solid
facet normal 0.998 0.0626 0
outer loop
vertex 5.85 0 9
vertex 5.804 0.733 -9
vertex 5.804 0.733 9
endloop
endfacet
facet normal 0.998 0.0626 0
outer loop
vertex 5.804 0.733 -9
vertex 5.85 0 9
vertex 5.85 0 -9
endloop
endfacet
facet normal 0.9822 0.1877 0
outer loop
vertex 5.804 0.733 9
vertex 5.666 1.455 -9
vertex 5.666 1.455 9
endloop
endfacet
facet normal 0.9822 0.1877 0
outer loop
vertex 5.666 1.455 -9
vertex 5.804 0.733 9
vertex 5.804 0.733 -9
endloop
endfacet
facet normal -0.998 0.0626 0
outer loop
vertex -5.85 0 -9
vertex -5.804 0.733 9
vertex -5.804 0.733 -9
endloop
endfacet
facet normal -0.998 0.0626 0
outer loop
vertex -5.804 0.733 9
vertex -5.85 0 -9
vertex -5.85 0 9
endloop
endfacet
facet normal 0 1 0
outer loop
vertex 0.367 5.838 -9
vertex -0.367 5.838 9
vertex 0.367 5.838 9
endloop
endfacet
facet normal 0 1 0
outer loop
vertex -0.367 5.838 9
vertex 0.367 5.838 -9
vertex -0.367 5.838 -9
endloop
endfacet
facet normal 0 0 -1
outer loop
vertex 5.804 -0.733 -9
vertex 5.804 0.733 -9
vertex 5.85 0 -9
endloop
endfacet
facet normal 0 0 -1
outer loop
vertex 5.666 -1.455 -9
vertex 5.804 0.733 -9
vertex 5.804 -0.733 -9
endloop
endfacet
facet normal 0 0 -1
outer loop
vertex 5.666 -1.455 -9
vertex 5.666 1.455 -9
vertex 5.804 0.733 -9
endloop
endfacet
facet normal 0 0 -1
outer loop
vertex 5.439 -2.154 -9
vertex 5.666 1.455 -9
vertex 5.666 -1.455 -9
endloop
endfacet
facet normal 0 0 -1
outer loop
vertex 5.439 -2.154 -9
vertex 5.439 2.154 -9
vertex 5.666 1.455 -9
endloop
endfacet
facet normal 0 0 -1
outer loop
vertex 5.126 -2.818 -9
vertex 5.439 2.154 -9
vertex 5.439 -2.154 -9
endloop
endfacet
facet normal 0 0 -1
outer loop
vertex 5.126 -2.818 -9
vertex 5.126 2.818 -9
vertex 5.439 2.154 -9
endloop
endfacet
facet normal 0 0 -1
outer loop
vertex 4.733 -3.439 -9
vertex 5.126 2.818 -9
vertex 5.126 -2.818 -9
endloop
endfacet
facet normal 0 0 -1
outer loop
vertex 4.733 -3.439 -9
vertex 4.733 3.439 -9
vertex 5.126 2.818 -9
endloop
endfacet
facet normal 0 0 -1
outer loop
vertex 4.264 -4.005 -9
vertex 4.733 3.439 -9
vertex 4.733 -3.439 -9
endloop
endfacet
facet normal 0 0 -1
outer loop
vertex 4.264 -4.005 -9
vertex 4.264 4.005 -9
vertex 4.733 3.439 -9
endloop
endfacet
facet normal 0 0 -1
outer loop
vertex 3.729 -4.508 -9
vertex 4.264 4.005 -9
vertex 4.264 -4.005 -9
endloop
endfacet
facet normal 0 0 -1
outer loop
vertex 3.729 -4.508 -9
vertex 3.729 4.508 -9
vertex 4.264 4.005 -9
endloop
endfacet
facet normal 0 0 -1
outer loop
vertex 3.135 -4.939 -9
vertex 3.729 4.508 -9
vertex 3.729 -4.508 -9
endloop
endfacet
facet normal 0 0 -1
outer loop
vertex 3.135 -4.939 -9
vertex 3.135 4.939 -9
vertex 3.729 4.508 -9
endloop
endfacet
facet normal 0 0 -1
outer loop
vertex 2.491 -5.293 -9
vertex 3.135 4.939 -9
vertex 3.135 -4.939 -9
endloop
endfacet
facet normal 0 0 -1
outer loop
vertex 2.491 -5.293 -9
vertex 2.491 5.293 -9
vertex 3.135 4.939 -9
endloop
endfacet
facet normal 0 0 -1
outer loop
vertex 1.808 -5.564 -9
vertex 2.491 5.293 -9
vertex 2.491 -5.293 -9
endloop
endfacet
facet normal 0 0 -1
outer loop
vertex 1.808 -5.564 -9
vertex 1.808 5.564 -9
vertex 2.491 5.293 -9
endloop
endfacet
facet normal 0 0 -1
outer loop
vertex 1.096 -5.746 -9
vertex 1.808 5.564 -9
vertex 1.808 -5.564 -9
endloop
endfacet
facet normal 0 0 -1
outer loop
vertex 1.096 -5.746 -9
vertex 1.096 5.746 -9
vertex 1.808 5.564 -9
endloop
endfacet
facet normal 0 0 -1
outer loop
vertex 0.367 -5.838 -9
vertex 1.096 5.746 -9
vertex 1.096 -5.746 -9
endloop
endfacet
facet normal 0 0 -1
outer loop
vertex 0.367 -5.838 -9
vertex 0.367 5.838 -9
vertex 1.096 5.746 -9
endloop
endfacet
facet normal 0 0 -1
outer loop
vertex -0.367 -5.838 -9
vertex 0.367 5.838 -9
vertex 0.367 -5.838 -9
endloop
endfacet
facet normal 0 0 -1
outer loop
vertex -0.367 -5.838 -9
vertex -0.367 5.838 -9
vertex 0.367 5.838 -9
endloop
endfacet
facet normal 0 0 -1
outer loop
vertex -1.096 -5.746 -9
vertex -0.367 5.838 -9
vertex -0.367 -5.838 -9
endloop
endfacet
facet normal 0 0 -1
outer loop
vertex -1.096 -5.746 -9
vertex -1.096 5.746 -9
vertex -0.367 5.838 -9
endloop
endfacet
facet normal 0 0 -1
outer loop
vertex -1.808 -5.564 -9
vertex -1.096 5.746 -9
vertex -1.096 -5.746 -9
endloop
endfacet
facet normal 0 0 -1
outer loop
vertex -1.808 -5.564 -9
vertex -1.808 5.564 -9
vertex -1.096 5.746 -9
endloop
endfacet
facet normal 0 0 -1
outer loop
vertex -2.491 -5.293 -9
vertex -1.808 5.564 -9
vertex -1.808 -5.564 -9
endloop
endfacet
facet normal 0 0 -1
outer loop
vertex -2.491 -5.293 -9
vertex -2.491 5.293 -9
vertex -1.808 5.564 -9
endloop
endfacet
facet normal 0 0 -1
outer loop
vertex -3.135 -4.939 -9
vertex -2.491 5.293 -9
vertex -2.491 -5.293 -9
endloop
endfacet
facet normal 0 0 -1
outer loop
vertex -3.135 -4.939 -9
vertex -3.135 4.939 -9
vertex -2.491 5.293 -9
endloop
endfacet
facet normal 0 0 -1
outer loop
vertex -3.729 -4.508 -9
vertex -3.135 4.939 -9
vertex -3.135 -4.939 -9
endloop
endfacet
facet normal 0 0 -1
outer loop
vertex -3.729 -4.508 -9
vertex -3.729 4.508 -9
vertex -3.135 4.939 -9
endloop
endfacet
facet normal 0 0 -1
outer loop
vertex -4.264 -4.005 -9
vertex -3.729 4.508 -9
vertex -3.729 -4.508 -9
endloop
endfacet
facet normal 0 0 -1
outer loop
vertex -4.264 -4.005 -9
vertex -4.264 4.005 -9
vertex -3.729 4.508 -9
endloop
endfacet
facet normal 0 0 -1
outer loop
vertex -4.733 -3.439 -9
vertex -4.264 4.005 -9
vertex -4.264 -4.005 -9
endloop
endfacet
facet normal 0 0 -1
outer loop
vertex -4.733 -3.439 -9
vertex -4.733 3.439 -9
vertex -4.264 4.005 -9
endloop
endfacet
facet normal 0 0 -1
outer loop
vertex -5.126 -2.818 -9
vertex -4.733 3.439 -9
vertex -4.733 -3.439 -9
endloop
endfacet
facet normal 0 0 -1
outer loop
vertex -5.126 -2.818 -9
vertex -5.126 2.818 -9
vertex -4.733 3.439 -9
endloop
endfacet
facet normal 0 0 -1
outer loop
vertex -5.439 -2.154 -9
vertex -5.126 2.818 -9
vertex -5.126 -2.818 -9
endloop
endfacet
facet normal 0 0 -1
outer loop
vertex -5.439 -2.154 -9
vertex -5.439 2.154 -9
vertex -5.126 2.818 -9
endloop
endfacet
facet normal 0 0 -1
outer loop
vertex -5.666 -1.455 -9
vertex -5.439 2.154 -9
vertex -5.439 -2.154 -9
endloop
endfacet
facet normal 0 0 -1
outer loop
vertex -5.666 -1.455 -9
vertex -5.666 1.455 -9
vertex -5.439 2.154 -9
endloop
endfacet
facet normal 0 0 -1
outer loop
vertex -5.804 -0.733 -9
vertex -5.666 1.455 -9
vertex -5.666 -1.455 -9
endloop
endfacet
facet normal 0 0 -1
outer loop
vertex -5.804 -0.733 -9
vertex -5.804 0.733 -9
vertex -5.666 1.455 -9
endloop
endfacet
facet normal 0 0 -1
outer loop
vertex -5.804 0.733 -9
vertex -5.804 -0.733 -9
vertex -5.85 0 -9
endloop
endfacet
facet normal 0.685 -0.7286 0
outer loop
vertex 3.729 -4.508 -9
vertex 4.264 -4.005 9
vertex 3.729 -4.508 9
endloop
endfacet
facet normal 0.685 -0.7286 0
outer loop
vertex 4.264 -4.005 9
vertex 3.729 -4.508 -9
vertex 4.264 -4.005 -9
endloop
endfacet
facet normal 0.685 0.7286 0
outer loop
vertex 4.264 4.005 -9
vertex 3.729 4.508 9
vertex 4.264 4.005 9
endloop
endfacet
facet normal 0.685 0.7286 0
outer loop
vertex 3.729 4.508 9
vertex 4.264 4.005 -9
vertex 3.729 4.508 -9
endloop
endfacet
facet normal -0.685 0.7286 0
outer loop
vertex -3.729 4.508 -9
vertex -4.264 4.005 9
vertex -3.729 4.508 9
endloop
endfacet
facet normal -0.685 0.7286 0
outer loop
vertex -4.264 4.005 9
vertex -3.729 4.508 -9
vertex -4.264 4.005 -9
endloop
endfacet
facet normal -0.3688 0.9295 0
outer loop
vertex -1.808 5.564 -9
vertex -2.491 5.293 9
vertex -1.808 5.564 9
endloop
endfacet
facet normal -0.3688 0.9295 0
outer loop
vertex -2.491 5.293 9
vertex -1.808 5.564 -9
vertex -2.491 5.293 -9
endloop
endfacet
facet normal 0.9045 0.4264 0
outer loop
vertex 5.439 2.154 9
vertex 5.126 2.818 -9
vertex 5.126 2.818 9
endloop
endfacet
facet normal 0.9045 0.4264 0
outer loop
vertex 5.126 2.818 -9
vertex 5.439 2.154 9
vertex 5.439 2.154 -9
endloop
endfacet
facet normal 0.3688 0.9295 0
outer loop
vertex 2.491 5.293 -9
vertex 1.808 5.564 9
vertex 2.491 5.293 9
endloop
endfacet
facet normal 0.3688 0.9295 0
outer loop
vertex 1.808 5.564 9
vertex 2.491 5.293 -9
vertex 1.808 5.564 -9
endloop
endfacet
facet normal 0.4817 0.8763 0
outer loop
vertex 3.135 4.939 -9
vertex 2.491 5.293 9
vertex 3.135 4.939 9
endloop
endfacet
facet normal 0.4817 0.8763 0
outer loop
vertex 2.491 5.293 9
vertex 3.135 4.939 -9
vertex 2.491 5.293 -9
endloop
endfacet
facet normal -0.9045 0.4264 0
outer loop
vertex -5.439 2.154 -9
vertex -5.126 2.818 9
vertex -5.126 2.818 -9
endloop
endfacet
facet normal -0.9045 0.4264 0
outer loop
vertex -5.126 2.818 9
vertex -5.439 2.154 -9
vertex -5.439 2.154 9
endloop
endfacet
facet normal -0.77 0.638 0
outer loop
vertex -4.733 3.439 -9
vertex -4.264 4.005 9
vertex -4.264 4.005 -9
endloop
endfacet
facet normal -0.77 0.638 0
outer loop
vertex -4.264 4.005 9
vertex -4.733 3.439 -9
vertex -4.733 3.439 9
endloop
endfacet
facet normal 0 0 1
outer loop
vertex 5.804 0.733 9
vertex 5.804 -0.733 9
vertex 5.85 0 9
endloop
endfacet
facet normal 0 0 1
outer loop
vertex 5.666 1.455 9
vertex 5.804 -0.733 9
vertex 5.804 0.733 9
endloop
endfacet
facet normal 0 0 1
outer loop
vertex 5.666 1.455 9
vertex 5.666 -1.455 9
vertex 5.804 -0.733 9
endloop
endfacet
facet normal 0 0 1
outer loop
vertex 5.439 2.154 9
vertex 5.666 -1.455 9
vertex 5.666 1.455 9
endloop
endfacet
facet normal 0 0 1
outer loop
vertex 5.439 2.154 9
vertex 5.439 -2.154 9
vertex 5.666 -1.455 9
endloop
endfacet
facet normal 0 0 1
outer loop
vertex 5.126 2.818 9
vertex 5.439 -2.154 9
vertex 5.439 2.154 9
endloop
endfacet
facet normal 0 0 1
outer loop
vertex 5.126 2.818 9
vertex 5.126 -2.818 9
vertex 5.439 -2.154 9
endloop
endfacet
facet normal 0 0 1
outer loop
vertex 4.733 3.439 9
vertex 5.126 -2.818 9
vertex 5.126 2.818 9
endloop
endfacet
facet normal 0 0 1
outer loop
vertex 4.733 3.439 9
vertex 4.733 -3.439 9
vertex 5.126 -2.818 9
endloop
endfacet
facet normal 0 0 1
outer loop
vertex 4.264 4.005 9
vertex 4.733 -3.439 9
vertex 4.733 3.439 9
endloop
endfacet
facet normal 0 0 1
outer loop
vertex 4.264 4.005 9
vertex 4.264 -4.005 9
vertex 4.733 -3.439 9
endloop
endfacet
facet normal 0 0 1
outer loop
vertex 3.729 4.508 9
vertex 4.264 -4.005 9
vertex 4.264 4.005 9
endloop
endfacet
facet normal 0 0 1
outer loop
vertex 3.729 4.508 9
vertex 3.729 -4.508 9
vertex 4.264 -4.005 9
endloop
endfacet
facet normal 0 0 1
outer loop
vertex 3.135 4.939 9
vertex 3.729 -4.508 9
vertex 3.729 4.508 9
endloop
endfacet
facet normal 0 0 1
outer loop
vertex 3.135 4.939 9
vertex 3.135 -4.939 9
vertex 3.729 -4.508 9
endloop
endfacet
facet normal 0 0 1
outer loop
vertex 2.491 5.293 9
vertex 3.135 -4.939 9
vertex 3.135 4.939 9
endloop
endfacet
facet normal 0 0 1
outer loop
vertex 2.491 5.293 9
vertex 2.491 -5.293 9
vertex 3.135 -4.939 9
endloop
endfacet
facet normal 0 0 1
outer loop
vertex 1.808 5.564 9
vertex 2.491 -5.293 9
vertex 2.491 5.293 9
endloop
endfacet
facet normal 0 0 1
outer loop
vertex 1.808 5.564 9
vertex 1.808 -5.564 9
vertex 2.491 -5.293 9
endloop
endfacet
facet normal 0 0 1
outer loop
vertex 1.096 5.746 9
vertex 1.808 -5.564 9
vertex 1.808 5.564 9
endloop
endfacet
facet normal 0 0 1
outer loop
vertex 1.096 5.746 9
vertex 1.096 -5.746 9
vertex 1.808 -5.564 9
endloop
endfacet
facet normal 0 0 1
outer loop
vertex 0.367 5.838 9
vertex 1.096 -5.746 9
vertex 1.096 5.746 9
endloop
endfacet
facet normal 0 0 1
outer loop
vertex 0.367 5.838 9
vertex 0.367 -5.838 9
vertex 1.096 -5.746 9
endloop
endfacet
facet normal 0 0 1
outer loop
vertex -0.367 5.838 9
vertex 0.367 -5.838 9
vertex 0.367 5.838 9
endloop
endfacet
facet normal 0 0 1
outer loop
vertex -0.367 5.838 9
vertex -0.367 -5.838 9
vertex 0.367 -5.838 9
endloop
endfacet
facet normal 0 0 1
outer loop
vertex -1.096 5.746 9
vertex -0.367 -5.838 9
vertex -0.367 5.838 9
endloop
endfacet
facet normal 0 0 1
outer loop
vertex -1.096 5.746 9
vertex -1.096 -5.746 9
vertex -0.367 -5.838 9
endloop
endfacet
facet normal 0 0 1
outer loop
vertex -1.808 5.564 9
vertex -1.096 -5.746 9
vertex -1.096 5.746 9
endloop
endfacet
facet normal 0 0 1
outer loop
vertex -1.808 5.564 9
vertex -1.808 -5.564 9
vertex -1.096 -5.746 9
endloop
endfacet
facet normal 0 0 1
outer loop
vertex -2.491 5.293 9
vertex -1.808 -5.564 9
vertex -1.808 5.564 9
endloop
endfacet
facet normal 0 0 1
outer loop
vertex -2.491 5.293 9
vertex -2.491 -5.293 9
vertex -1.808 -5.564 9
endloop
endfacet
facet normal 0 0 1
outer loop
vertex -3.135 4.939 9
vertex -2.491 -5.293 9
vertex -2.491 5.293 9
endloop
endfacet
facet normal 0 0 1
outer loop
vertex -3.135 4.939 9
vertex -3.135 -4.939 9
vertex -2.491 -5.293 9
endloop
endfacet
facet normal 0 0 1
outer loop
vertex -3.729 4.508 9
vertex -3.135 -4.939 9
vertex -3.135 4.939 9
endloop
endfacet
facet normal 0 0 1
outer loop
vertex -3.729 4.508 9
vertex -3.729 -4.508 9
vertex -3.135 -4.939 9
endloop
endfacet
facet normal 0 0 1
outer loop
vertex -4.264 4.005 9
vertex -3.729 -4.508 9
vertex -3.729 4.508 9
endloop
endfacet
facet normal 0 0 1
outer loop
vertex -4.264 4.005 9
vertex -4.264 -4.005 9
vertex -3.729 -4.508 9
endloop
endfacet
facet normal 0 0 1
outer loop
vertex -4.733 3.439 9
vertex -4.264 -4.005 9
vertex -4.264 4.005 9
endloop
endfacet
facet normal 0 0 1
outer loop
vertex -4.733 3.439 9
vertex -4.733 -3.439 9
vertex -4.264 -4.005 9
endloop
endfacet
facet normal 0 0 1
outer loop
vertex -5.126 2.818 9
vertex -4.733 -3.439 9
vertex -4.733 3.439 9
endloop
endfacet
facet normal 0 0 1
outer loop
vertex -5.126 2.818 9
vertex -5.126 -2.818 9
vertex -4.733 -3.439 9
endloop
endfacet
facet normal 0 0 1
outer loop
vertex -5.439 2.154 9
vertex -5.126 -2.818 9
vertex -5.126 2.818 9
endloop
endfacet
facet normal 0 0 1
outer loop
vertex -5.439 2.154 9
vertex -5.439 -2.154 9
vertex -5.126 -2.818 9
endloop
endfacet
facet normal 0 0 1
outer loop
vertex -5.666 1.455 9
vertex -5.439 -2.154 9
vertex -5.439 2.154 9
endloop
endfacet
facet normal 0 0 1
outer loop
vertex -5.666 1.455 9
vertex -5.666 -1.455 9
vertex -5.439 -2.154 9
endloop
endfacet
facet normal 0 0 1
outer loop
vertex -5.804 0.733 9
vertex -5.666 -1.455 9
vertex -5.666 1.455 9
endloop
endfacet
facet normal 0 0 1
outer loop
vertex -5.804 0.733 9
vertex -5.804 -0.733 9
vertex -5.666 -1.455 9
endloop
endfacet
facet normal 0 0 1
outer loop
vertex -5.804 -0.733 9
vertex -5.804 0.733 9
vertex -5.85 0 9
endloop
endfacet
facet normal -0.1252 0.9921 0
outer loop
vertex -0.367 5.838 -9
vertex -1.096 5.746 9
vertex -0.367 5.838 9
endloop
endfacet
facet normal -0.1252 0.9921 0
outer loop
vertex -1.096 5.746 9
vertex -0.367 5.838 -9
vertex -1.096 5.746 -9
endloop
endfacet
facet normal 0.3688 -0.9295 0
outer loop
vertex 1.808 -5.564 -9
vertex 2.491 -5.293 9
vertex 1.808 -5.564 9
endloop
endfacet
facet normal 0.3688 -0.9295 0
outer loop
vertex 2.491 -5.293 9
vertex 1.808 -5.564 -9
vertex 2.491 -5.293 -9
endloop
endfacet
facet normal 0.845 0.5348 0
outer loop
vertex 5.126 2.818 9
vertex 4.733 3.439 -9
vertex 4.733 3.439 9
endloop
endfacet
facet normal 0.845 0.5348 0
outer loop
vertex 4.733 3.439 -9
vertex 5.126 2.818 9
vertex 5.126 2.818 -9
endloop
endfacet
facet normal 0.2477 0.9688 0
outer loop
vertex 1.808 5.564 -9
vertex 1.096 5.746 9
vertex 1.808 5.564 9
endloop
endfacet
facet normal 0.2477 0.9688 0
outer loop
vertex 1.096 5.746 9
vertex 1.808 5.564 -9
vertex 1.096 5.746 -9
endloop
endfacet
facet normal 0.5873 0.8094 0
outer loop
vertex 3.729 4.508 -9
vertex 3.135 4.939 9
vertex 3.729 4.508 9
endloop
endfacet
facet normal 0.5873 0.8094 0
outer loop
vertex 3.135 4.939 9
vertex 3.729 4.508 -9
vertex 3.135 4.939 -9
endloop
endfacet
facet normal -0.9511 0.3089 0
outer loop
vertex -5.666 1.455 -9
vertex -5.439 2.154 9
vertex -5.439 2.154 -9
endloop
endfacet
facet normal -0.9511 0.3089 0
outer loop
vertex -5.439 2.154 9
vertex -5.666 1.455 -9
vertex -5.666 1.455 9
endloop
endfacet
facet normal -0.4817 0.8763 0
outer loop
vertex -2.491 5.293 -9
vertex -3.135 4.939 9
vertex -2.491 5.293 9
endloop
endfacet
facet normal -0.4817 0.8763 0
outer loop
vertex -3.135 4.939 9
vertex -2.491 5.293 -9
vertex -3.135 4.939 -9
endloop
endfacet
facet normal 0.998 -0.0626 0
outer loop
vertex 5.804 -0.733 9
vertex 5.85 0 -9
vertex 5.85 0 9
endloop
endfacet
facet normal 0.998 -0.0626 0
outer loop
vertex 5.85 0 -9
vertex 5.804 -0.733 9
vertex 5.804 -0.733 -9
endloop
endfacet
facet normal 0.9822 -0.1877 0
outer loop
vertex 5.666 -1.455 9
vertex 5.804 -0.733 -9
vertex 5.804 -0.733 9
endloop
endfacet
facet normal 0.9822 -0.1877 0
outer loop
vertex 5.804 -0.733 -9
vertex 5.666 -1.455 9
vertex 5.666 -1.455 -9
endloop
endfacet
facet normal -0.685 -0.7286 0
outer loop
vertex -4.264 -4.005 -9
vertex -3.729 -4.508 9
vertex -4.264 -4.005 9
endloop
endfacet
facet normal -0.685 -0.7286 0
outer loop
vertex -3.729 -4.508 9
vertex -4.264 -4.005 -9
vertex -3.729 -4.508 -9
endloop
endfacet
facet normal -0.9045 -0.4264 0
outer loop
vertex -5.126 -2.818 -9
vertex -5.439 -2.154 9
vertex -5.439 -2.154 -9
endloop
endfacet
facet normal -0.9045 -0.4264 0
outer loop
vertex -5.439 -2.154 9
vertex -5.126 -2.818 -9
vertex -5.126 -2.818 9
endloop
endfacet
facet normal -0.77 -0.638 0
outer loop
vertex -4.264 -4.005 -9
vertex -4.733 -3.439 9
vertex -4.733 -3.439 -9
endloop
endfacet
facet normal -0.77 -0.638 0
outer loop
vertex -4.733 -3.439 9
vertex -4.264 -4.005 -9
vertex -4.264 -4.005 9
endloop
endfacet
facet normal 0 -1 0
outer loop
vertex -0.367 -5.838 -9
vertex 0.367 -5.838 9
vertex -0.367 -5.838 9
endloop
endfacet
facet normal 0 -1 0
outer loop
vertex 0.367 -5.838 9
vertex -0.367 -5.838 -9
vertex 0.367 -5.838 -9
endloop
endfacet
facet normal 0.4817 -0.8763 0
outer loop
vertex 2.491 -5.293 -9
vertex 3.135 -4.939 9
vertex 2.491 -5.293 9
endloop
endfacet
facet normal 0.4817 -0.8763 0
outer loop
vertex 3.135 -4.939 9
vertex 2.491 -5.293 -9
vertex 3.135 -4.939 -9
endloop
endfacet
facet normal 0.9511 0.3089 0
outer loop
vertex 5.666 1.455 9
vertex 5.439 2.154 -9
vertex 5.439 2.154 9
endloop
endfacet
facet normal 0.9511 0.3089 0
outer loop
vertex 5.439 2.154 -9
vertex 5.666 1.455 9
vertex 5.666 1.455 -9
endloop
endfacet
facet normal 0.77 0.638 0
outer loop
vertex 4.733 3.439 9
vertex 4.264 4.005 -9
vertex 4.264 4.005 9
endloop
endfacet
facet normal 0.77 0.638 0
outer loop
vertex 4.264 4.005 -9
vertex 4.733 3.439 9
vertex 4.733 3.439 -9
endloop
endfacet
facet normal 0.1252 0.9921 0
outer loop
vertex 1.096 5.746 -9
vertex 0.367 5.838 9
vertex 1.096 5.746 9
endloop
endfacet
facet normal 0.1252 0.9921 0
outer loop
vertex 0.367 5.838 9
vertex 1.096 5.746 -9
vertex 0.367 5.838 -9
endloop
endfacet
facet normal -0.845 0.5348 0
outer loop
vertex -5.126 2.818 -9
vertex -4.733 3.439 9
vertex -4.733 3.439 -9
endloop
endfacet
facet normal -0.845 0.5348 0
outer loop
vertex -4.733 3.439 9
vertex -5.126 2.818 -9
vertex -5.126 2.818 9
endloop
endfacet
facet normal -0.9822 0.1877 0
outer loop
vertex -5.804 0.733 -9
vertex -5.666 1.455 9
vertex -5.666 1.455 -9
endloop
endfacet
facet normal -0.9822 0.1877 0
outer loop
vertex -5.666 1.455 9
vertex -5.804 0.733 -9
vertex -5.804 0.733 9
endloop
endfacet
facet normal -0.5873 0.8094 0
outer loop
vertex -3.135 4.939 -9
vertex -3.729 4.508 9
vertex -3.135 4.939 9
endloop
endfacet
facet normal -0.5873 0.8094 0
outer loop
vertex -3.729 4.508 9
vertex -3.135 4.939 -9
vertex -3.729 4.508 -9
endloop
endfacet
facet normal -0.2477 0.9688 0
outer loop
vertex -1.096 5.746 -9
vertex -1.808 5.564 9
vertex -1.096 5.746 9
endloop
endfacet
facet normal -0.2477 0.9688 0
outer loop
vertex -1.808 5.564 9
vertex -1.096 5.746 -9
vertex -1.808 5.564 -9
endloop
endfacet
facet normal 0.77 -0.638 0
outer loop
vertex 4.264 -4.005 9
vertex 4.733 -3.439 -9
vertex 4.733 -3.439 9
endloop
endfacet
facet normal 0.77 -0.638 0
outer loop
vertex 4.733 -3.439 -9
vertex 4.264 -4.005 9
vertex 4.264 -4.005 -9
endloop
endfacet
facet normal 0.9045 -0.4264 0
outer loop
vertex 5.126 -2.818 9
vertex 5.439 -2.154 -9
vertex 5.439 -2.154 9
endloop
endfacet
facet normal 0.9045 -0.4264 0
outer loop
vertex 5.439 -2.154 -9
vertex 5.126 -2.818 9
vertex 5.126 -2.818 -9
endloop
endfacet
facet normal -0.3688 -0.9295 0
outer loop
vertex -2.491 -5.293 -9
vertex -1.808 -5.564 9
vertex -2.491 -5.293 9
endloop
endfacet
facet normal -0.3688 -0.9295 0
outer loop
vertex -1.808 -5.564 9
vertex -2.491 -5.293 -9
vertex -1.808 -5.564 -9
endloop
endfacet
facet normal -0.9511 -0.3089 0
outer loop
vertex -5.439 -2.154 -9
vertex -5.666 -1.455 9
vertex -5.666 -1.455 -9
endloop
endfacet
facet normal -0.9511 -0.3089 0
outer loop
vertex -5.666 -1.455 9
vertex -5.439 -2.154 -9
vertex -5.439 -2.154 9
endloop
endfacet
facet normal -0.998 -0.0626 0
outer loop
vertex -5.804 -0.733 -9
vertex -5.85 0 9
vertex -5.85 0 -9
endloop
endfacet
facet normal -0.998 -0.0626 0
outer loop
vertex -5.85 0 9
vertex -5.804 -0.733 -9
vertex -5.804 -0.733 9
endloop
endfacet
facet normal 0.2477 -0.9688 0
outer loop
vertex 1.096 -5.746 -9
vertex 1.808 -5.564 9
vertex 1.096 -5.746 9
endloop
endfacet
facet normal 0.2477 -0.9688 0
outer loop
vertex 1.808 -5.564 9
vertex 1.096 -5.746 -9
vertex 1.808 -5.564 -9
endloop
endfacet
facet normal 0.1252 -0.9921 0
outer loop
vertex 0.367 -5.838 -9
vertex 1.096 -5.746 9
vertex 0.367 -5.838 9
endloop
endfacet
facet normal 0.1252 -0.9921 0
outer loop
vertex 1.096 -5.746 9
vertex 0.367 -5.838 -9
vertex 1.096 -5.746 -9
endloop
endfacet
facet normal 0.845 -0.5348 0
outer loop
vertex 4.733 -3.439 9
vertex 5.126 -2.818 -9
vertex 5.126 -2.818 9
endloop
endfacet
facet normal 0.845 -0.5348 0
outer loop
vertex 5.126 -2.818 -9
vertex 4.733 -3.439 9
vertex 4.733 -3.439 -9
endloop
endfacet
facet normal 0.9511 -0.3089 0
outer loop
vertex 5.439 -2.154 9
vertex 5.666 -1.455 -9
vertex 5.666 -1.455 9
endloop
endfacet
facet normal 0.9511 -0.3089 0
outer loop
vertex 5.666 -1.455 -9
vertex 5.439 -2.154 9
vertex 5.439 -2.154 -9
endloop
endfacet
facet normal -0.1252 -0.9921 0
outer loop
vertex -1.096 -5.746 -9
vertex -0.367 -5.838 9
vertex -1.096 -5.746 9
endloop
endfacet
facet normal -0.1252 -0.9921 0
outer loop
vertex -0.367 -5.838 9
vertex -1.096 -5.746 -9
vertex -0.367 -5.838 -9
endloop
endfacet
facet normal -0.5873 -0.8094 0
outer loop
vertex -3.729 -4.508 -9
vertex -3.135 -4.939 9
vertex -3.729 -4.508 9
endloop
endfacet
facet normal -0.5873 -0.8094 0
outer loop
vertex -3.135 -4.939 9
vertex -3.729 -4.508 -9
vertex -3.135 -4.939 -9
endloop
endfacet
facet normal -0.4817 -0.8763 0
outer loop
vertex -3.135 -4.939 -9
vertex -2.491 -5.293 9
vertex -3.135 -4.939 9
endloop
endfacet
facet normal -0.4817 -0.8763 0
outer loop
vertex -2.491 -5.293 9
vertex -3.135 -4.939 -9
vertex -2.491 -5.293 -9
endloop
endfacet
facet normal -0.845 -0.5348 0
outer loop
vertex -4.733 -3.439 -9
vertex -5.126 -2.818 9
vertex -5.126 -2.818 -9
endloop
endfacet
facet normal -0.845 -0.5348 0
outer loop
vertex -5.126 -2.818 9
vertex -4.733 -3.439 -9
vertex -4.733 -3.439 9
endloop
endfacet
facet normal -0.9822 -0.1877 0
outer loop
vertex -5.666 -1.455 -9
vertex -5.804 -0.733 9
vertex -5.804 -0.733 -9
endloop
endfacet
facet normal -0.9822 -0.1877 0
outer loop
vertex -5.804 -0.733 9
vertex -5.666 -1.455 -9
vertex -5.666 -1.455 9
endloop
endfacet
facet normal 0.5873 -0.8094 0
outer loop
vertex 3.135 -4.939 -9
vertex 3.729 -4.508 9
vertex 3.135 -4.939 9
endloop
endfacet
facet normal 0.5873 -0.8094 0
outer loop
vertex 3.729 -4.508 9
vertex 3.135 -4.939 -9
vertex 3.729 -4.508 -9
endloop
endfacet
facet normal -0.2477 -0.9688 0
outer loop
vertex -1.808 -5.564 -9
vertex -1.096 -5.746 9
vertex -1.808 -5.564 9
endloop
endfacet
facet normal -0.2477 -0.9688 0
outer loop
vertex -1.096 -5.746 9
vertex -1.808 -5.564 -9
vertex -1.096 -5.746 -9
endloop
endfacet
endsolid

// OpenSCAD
$fn = 50;


difference() {
	union() {
		translate(v = [0, 0, -9.0000000000]) {
			cylinder(h = 18, r = 5.8500000000);
		}
	}
	union() {
		translate(v = [0, 0, -100.0000000000]) {
			cylinder(h = 200, r = 0);
		}
	}
}
